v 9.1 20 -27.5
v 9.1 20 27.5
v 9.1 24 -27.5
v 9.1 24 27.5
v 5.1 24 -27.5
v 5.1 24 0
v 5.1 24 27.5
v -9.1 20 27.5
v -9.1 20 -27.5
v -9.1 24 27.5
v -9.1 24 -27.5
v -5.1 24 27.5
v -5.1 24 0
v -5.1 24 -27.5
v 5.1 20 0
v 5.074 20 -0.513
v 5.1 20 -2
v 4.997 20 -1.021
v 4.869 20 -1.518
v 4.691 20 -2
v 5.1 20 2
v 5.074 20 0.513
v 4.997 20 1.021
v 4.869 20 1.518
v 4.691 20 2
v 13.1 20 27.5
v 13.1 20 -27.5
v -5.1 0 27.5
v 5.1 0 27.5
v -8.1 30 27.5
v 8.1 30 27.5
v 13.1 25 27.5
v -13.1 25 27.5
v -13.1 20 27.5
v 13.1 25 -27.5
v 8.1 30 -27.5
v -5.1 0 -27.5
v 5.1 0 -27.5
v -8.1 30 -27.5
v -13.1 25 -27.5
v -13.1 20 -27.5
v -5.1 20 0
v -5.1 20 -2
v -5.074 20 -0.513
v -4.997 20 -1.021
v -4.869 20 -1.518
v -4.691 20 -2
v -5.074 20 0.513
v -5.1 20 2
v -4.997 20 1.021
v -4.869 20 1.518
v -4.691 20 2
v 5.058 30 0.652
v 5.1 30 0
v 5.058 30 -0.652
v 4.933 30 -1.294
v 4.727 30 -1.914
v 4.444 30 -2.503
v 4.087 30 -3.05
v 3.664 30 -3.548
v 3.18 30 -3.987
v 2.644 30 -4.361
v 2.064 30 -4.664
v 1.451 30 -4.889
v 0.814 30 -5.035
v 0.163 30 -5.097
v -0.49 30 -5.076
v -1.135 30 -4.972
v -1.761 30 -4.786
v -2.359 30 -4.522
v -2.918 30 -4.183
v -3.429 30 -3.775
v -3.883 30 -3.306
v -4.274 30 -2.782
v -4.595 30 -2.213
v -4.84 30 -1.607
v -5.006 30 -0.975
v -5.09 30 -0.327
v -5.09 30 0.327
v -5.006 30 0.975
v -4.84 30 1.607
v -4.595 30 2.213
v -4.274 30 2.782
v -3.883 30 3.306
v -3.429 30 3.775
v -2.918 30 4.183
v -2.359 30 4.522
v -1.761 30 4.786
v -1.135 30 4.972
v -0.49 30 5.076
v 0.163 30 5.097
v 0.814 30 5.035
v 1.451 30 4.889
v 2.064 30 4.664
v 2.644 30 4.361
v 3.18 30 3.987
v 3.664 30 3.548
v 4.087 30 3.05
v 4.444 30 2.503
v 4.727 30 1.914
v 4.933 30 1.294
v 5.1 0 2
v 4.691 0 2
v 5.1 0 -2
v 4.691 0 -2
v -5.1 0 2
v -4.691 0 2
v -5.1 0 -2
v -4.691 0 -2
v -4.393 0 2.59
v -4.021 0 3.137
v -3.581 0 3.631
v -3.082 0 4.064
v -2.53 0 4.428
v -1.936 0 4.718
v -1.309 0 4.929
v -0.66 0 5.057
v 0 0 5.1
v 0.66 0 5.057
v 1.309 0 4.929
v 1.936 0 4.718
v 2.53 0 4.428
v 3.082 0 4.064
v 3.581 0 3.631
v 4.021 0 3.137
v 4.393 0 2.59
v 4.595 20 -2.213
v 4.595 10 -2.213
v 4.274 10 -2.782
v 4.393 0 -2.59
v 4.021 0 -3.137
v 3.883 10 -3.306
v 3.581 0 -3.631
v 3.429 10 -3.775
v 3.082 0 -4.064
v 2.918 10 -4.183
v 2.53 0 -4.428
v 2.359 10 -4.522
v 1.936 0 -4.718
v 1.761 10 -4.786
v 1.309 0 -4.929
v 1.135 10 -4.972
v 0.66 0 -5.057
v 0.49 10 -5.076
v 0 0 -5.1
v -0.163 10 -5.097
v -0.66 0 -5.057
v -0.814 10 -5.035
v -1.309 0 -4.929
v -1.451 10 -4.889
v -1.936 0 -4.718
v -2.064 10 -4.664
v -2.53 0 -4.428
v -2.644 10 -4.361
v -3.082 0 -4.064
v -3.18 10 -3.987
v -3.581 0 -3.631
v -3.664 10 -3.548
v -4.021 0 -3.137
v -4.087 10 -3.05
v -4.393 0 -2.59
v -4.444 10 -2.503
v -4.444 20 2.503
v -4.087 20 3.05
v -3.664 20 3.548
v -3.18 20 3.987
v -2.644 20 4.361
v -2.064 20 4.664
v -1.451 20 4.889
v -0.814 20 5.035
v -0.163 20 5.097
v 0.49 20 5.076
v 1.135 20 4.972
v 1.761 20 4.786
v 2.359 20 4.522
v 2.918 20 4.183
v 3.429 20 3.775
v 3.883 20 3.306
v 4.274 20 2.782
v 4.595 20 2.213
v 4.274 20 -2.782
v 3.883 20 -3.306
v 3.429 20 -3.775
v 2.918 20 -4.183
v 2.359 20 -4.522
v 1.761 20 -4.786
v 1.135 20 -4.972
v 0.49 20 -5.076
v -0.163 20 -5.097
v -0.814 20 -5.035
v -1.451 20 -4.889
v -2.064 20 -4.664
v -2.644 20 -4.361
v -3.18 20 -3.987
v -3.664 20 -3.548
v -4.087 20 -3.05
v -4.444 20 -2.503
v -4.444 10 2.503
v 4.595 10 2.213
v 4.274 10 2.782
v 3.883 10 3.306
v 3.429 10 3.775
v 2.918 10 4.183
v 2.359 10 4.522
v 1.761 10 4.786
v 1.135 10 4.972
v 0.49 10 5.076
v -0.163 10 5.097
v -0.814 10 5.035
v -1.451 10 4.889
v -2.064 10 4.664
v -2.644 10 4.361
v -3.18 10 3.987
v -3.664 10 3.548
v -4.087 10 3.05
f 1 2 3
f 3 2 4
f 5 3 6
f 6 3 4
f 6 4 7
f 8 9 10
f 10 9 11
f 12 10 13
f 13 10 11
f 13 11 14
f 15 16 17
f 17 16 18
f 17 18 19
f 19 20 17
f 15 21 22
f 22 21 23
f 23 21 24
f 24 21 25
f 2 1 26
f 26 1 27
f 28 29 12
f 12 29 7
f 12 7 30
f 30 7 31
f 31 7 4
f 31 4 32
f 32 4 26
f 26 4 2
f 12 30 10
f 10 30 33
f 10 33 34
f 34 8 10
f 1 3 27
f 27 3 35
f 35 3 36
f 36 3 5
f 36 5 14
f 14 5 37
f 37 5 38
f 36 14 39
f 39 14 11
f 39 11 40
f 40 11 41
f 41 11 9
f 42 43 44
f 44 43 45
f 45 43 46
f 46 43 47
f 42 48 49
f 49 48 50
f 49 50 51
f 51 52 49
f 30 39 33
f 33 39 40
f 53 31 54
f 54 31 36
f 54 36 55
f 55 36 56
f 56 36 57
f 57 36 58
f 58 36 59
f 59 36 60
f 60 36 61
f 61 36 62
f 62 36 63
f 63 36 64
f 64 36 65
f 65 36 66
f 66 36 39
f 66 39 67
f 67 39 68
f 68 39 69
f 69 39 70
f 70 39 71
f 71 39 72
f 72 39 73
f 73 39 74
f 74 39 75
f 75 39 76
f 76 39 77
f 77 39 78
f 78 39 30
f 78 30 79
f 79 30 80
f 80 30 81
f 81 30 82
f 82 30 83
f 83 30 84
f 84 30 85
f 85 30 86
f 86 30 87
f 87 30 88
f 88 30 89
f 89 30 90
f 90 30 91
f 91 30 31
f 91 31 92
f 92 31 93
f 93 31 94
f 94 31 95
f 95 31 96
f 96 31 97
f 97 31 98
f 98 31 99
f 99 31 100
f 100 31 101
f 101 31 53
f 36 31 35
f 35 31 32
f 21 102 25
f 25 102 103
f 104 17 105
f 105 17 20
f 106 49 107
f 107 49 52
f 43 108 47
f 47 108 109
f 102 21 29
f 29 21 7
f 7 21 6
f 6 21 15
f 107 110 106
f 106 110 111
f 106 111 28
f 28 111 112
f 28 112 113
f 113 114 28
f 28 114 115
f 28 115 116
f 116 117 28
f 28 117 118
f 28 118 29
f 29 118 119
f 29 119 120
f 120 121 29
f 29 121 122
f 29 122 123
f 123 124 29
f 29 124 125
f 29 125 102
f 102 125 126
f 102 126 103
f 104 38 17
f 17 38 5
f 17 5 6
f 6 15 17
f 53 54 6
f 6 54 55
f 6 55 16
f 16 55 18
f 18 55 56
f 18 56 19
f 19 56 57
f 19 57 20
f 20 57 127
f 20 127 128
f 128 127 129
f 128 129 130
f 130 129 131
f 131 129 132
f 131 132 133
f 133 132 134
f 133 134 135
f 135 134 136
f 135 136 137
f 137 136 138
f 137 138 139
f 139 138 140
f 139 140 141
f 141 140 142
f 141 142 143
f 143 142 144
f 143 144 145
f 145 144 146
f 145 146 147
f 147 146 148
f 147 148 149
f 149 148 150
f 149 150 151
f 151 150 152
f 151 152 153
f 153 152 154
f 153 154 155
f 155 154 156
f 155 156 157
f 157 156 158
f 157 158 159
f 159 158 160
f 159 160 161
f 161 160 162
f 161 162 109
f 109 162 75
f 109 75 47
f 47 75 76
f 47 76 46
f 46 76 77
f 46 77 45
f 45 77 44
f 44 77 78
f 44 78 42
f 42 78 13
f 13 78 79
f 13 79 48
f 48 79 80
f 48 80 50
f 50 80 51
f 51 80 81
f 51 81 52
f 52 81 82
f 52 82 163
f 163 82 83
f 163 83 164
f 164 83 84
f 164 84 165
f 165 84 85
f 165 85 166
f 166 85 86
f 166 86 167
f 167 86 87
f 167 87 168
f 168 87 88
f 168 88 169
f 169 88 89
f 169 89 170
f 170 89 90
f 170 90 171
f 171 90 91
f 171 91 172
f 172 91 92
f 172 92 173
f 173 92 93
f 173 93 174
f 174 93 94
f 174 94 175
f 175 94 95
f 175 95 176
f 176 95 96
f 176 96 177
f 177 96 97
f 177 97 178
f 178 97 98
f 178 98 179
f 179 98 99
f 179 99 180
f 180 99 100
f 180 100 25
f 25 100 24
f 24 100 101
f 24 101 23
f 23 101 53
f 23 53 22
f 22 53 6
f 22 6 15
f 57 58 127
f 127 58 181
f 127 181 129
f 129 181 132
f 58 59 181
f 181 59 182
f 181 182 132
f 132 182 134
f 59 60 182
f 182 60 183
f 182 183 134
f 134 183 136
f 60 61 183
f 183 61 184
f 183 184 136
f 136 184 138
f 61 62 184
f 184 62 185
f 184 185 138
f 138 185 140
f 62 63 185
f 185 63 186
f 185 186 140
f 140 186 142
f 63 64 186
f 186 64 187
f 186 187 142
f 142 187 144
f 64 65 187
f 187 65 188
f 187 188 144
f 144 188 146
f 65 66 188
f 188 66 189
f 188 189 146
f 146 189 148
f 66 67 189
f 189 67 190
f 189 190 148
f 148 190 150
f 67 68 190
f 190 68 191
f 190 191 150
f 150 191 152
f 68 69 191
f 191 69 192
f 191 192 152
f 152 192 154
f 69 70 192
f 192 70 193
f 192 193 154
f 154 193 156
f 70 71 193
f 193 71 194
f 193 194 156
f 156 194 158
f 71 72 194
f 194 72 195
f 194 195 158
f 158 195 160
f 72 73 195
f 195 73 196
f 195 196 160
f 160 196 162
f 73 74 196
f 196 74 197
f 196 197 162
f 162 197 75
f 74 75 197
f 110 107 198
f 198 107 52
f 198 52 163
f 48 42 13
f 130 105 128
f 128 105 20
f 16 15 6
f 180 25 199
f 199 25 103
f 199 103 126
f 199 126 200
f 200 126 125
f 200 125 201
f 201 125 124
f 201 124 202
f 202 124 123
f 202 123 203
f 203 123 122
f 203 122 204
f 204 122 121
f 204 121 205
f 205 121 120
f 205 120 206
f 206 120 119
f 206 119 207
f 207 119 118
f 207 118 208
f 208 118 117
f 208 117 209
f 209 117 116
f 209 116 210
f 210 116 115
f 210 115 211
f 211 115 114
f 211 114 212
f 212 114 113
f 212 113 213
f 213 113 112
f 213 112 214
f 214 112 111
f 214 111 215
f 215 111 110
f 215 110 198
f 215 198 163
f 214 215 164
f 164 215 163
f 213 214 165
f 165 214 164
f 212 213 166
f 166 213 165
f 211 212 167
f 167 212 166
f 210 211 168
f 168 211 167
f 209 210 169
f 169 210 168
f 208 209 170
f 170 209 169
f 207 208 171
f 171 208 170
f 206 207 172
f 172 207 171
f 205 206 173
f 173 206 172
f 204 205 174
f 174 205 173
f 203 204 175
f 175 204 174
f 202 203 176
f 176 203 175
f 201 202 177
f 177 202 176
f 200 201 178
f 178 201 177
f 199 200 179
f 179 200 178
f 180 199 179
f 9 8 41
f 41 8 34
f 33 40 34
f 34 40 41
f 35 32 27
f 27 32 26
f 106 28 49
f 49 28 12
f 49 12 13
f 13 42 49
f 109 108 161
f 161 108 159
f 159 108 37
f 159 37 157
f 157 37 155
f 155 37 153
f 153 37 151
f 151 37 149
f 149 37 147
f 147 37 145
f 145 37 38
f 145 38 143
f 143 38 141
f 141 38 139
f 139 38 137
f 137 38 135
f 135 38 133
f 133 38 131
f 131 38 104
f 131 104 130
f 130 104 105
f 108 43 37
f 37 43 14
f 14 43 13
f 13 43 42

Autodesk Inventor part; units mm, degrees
ref_plane "YZ Plane" through (0, 0, 0) normal (1, 0, 0) x (0, 1, 0)
ref_plane "XZ Plane" through (0, 0, 0) normal (0, 1, 0) x (-1, 0, 0)
ref_plane "XY Plane" through (0, 0, 0) normal (0, 0, 1) x (1, 0, 0)
sketch "Boceto1" plane through (0, 0, 0) normal (0, 1, 0) x (-1, 0, 0)
  line L0 (5.1, 27.5) -> (-5.1, 27.5)
  line L1 (-5.1, 27.5) -> (-5.1, -27.5)
  line L2 (-5.1, -27.5) -> (5.1, -27.5)
  line L3 (5.1, -27.5) -> (5.1, 27.5)
  circle A0 centre (0, 0) radius 5.1
  line L4 (0, 0) -> (7.6193, 0) construction
  point P0 (-5.1, 0)
  dimension "d0" = 10.2
  dimension "d12" = 55
extrude "Extrusión1" add sketch "Boceto1" along normal blind 20 contours L3 A0 L1 L0 | L3 L2 L1 A0
sketch "Boceto2" plane through (0, 20, 0) normal (0, 1, 0) x (1, 0, 0)
  line L0 (-13.1, -27.5) -> (13.1, -27.5)
  line L1 (13.1, -27.5) -> (13.1, 27.5)
  line L2 (13.1, 27.5) -> (-13.1, 27.5)
  line L3 (-13.1, 27.5) -> (-13.1, -27.5)
  line L4 (-5.1, -27.5) -> (5.1, -27.5) projected
  line L5 (5.1, 27.5) -> (-5.1, 27.5) projected
  arc A0 (-5.1, 0) -> (5.1, 0) centre (0, 0) ccw projected
  line L6 (-5.1, 0) -> (-13.1, 0) construction
  circle A1 centre (0, 0) radius 5.1
  point P0 (0, -27.5)
  point P1 (0, 27.5)
  dimension "d3" = 8
extrude "Extrusión2" add sketch "Boceto2" along normal blind 10
sketch "Boceto3" plane through (0, 0, 0) normal (0, -1, 0) x (1, 0, 0)
  line L0 (-13.1982, 2) -> (11.7656, 2)
  line L1 (11.7656, 2) -> (11.7656, -2)
  line L2 (11.7656, -2) -> (-13.1982, -2)
  line L3 (-13.1982, -2) -> (-13.1982, 2)
  line L4 (0, 0) -> (-16.4322, 0) construction
  dimension "d6" = 4
extrude "Extrusión3" cut sketch "Boceto3" against normal up to surface (20 mm away)
chamfer "Chaflán1" distance 5 angle 45 2 edges at (13.1, 30, 0) (-13.1, 30, 0)
sketch "Boceto4" plane through (0, 20, 0) normal (0, -1, 0) x (1, 0, 0)
  line L0 (5.1, -27.5) -> (9.1, -27.5)
  line L1 (9.1, -27.5) -> (9.1, 27.5)
  line L2 (5.1, 27.5) -> (13.1, 27.5) projected
  line L3 (9.1, 27.5) -> (5.1, 27.5)
  line L4 (13.1, -27.5) -> (5.1, -27.5) projected
  line L5 (5.1, 27.5) -> (5.1, -27.5)
  line L6 (-5.1, -27.5) -> (-13.1, -27.5) projected
  line L7 (-5.1, -27.5) -> (-9.1, -27.5)
  line L8 (-5.1, 2) -> (-5.1, 27.5) projected
  line L9 (-5.1, 27.5) -> (-9.1, 27.5)
  line L10 (-13.1, 27.5) -> (-5.1, 27.5) projected
  line L11 (-9.1, 27.5) -> (-9.1, -27.5)
  line L12 (-5.1, -27.5) -> (-5.1, -2) projected
  line L13 (-5.1, 27.5) -> (-5.1, -27.5)
  point P0 (0, 0)
  dimension "d13" = 4
  dimension "d14" = 4
extrude "Extrusión4" cut sketch "Boceto4" against normal blind 4
properties part number "SoporteVarilla"
